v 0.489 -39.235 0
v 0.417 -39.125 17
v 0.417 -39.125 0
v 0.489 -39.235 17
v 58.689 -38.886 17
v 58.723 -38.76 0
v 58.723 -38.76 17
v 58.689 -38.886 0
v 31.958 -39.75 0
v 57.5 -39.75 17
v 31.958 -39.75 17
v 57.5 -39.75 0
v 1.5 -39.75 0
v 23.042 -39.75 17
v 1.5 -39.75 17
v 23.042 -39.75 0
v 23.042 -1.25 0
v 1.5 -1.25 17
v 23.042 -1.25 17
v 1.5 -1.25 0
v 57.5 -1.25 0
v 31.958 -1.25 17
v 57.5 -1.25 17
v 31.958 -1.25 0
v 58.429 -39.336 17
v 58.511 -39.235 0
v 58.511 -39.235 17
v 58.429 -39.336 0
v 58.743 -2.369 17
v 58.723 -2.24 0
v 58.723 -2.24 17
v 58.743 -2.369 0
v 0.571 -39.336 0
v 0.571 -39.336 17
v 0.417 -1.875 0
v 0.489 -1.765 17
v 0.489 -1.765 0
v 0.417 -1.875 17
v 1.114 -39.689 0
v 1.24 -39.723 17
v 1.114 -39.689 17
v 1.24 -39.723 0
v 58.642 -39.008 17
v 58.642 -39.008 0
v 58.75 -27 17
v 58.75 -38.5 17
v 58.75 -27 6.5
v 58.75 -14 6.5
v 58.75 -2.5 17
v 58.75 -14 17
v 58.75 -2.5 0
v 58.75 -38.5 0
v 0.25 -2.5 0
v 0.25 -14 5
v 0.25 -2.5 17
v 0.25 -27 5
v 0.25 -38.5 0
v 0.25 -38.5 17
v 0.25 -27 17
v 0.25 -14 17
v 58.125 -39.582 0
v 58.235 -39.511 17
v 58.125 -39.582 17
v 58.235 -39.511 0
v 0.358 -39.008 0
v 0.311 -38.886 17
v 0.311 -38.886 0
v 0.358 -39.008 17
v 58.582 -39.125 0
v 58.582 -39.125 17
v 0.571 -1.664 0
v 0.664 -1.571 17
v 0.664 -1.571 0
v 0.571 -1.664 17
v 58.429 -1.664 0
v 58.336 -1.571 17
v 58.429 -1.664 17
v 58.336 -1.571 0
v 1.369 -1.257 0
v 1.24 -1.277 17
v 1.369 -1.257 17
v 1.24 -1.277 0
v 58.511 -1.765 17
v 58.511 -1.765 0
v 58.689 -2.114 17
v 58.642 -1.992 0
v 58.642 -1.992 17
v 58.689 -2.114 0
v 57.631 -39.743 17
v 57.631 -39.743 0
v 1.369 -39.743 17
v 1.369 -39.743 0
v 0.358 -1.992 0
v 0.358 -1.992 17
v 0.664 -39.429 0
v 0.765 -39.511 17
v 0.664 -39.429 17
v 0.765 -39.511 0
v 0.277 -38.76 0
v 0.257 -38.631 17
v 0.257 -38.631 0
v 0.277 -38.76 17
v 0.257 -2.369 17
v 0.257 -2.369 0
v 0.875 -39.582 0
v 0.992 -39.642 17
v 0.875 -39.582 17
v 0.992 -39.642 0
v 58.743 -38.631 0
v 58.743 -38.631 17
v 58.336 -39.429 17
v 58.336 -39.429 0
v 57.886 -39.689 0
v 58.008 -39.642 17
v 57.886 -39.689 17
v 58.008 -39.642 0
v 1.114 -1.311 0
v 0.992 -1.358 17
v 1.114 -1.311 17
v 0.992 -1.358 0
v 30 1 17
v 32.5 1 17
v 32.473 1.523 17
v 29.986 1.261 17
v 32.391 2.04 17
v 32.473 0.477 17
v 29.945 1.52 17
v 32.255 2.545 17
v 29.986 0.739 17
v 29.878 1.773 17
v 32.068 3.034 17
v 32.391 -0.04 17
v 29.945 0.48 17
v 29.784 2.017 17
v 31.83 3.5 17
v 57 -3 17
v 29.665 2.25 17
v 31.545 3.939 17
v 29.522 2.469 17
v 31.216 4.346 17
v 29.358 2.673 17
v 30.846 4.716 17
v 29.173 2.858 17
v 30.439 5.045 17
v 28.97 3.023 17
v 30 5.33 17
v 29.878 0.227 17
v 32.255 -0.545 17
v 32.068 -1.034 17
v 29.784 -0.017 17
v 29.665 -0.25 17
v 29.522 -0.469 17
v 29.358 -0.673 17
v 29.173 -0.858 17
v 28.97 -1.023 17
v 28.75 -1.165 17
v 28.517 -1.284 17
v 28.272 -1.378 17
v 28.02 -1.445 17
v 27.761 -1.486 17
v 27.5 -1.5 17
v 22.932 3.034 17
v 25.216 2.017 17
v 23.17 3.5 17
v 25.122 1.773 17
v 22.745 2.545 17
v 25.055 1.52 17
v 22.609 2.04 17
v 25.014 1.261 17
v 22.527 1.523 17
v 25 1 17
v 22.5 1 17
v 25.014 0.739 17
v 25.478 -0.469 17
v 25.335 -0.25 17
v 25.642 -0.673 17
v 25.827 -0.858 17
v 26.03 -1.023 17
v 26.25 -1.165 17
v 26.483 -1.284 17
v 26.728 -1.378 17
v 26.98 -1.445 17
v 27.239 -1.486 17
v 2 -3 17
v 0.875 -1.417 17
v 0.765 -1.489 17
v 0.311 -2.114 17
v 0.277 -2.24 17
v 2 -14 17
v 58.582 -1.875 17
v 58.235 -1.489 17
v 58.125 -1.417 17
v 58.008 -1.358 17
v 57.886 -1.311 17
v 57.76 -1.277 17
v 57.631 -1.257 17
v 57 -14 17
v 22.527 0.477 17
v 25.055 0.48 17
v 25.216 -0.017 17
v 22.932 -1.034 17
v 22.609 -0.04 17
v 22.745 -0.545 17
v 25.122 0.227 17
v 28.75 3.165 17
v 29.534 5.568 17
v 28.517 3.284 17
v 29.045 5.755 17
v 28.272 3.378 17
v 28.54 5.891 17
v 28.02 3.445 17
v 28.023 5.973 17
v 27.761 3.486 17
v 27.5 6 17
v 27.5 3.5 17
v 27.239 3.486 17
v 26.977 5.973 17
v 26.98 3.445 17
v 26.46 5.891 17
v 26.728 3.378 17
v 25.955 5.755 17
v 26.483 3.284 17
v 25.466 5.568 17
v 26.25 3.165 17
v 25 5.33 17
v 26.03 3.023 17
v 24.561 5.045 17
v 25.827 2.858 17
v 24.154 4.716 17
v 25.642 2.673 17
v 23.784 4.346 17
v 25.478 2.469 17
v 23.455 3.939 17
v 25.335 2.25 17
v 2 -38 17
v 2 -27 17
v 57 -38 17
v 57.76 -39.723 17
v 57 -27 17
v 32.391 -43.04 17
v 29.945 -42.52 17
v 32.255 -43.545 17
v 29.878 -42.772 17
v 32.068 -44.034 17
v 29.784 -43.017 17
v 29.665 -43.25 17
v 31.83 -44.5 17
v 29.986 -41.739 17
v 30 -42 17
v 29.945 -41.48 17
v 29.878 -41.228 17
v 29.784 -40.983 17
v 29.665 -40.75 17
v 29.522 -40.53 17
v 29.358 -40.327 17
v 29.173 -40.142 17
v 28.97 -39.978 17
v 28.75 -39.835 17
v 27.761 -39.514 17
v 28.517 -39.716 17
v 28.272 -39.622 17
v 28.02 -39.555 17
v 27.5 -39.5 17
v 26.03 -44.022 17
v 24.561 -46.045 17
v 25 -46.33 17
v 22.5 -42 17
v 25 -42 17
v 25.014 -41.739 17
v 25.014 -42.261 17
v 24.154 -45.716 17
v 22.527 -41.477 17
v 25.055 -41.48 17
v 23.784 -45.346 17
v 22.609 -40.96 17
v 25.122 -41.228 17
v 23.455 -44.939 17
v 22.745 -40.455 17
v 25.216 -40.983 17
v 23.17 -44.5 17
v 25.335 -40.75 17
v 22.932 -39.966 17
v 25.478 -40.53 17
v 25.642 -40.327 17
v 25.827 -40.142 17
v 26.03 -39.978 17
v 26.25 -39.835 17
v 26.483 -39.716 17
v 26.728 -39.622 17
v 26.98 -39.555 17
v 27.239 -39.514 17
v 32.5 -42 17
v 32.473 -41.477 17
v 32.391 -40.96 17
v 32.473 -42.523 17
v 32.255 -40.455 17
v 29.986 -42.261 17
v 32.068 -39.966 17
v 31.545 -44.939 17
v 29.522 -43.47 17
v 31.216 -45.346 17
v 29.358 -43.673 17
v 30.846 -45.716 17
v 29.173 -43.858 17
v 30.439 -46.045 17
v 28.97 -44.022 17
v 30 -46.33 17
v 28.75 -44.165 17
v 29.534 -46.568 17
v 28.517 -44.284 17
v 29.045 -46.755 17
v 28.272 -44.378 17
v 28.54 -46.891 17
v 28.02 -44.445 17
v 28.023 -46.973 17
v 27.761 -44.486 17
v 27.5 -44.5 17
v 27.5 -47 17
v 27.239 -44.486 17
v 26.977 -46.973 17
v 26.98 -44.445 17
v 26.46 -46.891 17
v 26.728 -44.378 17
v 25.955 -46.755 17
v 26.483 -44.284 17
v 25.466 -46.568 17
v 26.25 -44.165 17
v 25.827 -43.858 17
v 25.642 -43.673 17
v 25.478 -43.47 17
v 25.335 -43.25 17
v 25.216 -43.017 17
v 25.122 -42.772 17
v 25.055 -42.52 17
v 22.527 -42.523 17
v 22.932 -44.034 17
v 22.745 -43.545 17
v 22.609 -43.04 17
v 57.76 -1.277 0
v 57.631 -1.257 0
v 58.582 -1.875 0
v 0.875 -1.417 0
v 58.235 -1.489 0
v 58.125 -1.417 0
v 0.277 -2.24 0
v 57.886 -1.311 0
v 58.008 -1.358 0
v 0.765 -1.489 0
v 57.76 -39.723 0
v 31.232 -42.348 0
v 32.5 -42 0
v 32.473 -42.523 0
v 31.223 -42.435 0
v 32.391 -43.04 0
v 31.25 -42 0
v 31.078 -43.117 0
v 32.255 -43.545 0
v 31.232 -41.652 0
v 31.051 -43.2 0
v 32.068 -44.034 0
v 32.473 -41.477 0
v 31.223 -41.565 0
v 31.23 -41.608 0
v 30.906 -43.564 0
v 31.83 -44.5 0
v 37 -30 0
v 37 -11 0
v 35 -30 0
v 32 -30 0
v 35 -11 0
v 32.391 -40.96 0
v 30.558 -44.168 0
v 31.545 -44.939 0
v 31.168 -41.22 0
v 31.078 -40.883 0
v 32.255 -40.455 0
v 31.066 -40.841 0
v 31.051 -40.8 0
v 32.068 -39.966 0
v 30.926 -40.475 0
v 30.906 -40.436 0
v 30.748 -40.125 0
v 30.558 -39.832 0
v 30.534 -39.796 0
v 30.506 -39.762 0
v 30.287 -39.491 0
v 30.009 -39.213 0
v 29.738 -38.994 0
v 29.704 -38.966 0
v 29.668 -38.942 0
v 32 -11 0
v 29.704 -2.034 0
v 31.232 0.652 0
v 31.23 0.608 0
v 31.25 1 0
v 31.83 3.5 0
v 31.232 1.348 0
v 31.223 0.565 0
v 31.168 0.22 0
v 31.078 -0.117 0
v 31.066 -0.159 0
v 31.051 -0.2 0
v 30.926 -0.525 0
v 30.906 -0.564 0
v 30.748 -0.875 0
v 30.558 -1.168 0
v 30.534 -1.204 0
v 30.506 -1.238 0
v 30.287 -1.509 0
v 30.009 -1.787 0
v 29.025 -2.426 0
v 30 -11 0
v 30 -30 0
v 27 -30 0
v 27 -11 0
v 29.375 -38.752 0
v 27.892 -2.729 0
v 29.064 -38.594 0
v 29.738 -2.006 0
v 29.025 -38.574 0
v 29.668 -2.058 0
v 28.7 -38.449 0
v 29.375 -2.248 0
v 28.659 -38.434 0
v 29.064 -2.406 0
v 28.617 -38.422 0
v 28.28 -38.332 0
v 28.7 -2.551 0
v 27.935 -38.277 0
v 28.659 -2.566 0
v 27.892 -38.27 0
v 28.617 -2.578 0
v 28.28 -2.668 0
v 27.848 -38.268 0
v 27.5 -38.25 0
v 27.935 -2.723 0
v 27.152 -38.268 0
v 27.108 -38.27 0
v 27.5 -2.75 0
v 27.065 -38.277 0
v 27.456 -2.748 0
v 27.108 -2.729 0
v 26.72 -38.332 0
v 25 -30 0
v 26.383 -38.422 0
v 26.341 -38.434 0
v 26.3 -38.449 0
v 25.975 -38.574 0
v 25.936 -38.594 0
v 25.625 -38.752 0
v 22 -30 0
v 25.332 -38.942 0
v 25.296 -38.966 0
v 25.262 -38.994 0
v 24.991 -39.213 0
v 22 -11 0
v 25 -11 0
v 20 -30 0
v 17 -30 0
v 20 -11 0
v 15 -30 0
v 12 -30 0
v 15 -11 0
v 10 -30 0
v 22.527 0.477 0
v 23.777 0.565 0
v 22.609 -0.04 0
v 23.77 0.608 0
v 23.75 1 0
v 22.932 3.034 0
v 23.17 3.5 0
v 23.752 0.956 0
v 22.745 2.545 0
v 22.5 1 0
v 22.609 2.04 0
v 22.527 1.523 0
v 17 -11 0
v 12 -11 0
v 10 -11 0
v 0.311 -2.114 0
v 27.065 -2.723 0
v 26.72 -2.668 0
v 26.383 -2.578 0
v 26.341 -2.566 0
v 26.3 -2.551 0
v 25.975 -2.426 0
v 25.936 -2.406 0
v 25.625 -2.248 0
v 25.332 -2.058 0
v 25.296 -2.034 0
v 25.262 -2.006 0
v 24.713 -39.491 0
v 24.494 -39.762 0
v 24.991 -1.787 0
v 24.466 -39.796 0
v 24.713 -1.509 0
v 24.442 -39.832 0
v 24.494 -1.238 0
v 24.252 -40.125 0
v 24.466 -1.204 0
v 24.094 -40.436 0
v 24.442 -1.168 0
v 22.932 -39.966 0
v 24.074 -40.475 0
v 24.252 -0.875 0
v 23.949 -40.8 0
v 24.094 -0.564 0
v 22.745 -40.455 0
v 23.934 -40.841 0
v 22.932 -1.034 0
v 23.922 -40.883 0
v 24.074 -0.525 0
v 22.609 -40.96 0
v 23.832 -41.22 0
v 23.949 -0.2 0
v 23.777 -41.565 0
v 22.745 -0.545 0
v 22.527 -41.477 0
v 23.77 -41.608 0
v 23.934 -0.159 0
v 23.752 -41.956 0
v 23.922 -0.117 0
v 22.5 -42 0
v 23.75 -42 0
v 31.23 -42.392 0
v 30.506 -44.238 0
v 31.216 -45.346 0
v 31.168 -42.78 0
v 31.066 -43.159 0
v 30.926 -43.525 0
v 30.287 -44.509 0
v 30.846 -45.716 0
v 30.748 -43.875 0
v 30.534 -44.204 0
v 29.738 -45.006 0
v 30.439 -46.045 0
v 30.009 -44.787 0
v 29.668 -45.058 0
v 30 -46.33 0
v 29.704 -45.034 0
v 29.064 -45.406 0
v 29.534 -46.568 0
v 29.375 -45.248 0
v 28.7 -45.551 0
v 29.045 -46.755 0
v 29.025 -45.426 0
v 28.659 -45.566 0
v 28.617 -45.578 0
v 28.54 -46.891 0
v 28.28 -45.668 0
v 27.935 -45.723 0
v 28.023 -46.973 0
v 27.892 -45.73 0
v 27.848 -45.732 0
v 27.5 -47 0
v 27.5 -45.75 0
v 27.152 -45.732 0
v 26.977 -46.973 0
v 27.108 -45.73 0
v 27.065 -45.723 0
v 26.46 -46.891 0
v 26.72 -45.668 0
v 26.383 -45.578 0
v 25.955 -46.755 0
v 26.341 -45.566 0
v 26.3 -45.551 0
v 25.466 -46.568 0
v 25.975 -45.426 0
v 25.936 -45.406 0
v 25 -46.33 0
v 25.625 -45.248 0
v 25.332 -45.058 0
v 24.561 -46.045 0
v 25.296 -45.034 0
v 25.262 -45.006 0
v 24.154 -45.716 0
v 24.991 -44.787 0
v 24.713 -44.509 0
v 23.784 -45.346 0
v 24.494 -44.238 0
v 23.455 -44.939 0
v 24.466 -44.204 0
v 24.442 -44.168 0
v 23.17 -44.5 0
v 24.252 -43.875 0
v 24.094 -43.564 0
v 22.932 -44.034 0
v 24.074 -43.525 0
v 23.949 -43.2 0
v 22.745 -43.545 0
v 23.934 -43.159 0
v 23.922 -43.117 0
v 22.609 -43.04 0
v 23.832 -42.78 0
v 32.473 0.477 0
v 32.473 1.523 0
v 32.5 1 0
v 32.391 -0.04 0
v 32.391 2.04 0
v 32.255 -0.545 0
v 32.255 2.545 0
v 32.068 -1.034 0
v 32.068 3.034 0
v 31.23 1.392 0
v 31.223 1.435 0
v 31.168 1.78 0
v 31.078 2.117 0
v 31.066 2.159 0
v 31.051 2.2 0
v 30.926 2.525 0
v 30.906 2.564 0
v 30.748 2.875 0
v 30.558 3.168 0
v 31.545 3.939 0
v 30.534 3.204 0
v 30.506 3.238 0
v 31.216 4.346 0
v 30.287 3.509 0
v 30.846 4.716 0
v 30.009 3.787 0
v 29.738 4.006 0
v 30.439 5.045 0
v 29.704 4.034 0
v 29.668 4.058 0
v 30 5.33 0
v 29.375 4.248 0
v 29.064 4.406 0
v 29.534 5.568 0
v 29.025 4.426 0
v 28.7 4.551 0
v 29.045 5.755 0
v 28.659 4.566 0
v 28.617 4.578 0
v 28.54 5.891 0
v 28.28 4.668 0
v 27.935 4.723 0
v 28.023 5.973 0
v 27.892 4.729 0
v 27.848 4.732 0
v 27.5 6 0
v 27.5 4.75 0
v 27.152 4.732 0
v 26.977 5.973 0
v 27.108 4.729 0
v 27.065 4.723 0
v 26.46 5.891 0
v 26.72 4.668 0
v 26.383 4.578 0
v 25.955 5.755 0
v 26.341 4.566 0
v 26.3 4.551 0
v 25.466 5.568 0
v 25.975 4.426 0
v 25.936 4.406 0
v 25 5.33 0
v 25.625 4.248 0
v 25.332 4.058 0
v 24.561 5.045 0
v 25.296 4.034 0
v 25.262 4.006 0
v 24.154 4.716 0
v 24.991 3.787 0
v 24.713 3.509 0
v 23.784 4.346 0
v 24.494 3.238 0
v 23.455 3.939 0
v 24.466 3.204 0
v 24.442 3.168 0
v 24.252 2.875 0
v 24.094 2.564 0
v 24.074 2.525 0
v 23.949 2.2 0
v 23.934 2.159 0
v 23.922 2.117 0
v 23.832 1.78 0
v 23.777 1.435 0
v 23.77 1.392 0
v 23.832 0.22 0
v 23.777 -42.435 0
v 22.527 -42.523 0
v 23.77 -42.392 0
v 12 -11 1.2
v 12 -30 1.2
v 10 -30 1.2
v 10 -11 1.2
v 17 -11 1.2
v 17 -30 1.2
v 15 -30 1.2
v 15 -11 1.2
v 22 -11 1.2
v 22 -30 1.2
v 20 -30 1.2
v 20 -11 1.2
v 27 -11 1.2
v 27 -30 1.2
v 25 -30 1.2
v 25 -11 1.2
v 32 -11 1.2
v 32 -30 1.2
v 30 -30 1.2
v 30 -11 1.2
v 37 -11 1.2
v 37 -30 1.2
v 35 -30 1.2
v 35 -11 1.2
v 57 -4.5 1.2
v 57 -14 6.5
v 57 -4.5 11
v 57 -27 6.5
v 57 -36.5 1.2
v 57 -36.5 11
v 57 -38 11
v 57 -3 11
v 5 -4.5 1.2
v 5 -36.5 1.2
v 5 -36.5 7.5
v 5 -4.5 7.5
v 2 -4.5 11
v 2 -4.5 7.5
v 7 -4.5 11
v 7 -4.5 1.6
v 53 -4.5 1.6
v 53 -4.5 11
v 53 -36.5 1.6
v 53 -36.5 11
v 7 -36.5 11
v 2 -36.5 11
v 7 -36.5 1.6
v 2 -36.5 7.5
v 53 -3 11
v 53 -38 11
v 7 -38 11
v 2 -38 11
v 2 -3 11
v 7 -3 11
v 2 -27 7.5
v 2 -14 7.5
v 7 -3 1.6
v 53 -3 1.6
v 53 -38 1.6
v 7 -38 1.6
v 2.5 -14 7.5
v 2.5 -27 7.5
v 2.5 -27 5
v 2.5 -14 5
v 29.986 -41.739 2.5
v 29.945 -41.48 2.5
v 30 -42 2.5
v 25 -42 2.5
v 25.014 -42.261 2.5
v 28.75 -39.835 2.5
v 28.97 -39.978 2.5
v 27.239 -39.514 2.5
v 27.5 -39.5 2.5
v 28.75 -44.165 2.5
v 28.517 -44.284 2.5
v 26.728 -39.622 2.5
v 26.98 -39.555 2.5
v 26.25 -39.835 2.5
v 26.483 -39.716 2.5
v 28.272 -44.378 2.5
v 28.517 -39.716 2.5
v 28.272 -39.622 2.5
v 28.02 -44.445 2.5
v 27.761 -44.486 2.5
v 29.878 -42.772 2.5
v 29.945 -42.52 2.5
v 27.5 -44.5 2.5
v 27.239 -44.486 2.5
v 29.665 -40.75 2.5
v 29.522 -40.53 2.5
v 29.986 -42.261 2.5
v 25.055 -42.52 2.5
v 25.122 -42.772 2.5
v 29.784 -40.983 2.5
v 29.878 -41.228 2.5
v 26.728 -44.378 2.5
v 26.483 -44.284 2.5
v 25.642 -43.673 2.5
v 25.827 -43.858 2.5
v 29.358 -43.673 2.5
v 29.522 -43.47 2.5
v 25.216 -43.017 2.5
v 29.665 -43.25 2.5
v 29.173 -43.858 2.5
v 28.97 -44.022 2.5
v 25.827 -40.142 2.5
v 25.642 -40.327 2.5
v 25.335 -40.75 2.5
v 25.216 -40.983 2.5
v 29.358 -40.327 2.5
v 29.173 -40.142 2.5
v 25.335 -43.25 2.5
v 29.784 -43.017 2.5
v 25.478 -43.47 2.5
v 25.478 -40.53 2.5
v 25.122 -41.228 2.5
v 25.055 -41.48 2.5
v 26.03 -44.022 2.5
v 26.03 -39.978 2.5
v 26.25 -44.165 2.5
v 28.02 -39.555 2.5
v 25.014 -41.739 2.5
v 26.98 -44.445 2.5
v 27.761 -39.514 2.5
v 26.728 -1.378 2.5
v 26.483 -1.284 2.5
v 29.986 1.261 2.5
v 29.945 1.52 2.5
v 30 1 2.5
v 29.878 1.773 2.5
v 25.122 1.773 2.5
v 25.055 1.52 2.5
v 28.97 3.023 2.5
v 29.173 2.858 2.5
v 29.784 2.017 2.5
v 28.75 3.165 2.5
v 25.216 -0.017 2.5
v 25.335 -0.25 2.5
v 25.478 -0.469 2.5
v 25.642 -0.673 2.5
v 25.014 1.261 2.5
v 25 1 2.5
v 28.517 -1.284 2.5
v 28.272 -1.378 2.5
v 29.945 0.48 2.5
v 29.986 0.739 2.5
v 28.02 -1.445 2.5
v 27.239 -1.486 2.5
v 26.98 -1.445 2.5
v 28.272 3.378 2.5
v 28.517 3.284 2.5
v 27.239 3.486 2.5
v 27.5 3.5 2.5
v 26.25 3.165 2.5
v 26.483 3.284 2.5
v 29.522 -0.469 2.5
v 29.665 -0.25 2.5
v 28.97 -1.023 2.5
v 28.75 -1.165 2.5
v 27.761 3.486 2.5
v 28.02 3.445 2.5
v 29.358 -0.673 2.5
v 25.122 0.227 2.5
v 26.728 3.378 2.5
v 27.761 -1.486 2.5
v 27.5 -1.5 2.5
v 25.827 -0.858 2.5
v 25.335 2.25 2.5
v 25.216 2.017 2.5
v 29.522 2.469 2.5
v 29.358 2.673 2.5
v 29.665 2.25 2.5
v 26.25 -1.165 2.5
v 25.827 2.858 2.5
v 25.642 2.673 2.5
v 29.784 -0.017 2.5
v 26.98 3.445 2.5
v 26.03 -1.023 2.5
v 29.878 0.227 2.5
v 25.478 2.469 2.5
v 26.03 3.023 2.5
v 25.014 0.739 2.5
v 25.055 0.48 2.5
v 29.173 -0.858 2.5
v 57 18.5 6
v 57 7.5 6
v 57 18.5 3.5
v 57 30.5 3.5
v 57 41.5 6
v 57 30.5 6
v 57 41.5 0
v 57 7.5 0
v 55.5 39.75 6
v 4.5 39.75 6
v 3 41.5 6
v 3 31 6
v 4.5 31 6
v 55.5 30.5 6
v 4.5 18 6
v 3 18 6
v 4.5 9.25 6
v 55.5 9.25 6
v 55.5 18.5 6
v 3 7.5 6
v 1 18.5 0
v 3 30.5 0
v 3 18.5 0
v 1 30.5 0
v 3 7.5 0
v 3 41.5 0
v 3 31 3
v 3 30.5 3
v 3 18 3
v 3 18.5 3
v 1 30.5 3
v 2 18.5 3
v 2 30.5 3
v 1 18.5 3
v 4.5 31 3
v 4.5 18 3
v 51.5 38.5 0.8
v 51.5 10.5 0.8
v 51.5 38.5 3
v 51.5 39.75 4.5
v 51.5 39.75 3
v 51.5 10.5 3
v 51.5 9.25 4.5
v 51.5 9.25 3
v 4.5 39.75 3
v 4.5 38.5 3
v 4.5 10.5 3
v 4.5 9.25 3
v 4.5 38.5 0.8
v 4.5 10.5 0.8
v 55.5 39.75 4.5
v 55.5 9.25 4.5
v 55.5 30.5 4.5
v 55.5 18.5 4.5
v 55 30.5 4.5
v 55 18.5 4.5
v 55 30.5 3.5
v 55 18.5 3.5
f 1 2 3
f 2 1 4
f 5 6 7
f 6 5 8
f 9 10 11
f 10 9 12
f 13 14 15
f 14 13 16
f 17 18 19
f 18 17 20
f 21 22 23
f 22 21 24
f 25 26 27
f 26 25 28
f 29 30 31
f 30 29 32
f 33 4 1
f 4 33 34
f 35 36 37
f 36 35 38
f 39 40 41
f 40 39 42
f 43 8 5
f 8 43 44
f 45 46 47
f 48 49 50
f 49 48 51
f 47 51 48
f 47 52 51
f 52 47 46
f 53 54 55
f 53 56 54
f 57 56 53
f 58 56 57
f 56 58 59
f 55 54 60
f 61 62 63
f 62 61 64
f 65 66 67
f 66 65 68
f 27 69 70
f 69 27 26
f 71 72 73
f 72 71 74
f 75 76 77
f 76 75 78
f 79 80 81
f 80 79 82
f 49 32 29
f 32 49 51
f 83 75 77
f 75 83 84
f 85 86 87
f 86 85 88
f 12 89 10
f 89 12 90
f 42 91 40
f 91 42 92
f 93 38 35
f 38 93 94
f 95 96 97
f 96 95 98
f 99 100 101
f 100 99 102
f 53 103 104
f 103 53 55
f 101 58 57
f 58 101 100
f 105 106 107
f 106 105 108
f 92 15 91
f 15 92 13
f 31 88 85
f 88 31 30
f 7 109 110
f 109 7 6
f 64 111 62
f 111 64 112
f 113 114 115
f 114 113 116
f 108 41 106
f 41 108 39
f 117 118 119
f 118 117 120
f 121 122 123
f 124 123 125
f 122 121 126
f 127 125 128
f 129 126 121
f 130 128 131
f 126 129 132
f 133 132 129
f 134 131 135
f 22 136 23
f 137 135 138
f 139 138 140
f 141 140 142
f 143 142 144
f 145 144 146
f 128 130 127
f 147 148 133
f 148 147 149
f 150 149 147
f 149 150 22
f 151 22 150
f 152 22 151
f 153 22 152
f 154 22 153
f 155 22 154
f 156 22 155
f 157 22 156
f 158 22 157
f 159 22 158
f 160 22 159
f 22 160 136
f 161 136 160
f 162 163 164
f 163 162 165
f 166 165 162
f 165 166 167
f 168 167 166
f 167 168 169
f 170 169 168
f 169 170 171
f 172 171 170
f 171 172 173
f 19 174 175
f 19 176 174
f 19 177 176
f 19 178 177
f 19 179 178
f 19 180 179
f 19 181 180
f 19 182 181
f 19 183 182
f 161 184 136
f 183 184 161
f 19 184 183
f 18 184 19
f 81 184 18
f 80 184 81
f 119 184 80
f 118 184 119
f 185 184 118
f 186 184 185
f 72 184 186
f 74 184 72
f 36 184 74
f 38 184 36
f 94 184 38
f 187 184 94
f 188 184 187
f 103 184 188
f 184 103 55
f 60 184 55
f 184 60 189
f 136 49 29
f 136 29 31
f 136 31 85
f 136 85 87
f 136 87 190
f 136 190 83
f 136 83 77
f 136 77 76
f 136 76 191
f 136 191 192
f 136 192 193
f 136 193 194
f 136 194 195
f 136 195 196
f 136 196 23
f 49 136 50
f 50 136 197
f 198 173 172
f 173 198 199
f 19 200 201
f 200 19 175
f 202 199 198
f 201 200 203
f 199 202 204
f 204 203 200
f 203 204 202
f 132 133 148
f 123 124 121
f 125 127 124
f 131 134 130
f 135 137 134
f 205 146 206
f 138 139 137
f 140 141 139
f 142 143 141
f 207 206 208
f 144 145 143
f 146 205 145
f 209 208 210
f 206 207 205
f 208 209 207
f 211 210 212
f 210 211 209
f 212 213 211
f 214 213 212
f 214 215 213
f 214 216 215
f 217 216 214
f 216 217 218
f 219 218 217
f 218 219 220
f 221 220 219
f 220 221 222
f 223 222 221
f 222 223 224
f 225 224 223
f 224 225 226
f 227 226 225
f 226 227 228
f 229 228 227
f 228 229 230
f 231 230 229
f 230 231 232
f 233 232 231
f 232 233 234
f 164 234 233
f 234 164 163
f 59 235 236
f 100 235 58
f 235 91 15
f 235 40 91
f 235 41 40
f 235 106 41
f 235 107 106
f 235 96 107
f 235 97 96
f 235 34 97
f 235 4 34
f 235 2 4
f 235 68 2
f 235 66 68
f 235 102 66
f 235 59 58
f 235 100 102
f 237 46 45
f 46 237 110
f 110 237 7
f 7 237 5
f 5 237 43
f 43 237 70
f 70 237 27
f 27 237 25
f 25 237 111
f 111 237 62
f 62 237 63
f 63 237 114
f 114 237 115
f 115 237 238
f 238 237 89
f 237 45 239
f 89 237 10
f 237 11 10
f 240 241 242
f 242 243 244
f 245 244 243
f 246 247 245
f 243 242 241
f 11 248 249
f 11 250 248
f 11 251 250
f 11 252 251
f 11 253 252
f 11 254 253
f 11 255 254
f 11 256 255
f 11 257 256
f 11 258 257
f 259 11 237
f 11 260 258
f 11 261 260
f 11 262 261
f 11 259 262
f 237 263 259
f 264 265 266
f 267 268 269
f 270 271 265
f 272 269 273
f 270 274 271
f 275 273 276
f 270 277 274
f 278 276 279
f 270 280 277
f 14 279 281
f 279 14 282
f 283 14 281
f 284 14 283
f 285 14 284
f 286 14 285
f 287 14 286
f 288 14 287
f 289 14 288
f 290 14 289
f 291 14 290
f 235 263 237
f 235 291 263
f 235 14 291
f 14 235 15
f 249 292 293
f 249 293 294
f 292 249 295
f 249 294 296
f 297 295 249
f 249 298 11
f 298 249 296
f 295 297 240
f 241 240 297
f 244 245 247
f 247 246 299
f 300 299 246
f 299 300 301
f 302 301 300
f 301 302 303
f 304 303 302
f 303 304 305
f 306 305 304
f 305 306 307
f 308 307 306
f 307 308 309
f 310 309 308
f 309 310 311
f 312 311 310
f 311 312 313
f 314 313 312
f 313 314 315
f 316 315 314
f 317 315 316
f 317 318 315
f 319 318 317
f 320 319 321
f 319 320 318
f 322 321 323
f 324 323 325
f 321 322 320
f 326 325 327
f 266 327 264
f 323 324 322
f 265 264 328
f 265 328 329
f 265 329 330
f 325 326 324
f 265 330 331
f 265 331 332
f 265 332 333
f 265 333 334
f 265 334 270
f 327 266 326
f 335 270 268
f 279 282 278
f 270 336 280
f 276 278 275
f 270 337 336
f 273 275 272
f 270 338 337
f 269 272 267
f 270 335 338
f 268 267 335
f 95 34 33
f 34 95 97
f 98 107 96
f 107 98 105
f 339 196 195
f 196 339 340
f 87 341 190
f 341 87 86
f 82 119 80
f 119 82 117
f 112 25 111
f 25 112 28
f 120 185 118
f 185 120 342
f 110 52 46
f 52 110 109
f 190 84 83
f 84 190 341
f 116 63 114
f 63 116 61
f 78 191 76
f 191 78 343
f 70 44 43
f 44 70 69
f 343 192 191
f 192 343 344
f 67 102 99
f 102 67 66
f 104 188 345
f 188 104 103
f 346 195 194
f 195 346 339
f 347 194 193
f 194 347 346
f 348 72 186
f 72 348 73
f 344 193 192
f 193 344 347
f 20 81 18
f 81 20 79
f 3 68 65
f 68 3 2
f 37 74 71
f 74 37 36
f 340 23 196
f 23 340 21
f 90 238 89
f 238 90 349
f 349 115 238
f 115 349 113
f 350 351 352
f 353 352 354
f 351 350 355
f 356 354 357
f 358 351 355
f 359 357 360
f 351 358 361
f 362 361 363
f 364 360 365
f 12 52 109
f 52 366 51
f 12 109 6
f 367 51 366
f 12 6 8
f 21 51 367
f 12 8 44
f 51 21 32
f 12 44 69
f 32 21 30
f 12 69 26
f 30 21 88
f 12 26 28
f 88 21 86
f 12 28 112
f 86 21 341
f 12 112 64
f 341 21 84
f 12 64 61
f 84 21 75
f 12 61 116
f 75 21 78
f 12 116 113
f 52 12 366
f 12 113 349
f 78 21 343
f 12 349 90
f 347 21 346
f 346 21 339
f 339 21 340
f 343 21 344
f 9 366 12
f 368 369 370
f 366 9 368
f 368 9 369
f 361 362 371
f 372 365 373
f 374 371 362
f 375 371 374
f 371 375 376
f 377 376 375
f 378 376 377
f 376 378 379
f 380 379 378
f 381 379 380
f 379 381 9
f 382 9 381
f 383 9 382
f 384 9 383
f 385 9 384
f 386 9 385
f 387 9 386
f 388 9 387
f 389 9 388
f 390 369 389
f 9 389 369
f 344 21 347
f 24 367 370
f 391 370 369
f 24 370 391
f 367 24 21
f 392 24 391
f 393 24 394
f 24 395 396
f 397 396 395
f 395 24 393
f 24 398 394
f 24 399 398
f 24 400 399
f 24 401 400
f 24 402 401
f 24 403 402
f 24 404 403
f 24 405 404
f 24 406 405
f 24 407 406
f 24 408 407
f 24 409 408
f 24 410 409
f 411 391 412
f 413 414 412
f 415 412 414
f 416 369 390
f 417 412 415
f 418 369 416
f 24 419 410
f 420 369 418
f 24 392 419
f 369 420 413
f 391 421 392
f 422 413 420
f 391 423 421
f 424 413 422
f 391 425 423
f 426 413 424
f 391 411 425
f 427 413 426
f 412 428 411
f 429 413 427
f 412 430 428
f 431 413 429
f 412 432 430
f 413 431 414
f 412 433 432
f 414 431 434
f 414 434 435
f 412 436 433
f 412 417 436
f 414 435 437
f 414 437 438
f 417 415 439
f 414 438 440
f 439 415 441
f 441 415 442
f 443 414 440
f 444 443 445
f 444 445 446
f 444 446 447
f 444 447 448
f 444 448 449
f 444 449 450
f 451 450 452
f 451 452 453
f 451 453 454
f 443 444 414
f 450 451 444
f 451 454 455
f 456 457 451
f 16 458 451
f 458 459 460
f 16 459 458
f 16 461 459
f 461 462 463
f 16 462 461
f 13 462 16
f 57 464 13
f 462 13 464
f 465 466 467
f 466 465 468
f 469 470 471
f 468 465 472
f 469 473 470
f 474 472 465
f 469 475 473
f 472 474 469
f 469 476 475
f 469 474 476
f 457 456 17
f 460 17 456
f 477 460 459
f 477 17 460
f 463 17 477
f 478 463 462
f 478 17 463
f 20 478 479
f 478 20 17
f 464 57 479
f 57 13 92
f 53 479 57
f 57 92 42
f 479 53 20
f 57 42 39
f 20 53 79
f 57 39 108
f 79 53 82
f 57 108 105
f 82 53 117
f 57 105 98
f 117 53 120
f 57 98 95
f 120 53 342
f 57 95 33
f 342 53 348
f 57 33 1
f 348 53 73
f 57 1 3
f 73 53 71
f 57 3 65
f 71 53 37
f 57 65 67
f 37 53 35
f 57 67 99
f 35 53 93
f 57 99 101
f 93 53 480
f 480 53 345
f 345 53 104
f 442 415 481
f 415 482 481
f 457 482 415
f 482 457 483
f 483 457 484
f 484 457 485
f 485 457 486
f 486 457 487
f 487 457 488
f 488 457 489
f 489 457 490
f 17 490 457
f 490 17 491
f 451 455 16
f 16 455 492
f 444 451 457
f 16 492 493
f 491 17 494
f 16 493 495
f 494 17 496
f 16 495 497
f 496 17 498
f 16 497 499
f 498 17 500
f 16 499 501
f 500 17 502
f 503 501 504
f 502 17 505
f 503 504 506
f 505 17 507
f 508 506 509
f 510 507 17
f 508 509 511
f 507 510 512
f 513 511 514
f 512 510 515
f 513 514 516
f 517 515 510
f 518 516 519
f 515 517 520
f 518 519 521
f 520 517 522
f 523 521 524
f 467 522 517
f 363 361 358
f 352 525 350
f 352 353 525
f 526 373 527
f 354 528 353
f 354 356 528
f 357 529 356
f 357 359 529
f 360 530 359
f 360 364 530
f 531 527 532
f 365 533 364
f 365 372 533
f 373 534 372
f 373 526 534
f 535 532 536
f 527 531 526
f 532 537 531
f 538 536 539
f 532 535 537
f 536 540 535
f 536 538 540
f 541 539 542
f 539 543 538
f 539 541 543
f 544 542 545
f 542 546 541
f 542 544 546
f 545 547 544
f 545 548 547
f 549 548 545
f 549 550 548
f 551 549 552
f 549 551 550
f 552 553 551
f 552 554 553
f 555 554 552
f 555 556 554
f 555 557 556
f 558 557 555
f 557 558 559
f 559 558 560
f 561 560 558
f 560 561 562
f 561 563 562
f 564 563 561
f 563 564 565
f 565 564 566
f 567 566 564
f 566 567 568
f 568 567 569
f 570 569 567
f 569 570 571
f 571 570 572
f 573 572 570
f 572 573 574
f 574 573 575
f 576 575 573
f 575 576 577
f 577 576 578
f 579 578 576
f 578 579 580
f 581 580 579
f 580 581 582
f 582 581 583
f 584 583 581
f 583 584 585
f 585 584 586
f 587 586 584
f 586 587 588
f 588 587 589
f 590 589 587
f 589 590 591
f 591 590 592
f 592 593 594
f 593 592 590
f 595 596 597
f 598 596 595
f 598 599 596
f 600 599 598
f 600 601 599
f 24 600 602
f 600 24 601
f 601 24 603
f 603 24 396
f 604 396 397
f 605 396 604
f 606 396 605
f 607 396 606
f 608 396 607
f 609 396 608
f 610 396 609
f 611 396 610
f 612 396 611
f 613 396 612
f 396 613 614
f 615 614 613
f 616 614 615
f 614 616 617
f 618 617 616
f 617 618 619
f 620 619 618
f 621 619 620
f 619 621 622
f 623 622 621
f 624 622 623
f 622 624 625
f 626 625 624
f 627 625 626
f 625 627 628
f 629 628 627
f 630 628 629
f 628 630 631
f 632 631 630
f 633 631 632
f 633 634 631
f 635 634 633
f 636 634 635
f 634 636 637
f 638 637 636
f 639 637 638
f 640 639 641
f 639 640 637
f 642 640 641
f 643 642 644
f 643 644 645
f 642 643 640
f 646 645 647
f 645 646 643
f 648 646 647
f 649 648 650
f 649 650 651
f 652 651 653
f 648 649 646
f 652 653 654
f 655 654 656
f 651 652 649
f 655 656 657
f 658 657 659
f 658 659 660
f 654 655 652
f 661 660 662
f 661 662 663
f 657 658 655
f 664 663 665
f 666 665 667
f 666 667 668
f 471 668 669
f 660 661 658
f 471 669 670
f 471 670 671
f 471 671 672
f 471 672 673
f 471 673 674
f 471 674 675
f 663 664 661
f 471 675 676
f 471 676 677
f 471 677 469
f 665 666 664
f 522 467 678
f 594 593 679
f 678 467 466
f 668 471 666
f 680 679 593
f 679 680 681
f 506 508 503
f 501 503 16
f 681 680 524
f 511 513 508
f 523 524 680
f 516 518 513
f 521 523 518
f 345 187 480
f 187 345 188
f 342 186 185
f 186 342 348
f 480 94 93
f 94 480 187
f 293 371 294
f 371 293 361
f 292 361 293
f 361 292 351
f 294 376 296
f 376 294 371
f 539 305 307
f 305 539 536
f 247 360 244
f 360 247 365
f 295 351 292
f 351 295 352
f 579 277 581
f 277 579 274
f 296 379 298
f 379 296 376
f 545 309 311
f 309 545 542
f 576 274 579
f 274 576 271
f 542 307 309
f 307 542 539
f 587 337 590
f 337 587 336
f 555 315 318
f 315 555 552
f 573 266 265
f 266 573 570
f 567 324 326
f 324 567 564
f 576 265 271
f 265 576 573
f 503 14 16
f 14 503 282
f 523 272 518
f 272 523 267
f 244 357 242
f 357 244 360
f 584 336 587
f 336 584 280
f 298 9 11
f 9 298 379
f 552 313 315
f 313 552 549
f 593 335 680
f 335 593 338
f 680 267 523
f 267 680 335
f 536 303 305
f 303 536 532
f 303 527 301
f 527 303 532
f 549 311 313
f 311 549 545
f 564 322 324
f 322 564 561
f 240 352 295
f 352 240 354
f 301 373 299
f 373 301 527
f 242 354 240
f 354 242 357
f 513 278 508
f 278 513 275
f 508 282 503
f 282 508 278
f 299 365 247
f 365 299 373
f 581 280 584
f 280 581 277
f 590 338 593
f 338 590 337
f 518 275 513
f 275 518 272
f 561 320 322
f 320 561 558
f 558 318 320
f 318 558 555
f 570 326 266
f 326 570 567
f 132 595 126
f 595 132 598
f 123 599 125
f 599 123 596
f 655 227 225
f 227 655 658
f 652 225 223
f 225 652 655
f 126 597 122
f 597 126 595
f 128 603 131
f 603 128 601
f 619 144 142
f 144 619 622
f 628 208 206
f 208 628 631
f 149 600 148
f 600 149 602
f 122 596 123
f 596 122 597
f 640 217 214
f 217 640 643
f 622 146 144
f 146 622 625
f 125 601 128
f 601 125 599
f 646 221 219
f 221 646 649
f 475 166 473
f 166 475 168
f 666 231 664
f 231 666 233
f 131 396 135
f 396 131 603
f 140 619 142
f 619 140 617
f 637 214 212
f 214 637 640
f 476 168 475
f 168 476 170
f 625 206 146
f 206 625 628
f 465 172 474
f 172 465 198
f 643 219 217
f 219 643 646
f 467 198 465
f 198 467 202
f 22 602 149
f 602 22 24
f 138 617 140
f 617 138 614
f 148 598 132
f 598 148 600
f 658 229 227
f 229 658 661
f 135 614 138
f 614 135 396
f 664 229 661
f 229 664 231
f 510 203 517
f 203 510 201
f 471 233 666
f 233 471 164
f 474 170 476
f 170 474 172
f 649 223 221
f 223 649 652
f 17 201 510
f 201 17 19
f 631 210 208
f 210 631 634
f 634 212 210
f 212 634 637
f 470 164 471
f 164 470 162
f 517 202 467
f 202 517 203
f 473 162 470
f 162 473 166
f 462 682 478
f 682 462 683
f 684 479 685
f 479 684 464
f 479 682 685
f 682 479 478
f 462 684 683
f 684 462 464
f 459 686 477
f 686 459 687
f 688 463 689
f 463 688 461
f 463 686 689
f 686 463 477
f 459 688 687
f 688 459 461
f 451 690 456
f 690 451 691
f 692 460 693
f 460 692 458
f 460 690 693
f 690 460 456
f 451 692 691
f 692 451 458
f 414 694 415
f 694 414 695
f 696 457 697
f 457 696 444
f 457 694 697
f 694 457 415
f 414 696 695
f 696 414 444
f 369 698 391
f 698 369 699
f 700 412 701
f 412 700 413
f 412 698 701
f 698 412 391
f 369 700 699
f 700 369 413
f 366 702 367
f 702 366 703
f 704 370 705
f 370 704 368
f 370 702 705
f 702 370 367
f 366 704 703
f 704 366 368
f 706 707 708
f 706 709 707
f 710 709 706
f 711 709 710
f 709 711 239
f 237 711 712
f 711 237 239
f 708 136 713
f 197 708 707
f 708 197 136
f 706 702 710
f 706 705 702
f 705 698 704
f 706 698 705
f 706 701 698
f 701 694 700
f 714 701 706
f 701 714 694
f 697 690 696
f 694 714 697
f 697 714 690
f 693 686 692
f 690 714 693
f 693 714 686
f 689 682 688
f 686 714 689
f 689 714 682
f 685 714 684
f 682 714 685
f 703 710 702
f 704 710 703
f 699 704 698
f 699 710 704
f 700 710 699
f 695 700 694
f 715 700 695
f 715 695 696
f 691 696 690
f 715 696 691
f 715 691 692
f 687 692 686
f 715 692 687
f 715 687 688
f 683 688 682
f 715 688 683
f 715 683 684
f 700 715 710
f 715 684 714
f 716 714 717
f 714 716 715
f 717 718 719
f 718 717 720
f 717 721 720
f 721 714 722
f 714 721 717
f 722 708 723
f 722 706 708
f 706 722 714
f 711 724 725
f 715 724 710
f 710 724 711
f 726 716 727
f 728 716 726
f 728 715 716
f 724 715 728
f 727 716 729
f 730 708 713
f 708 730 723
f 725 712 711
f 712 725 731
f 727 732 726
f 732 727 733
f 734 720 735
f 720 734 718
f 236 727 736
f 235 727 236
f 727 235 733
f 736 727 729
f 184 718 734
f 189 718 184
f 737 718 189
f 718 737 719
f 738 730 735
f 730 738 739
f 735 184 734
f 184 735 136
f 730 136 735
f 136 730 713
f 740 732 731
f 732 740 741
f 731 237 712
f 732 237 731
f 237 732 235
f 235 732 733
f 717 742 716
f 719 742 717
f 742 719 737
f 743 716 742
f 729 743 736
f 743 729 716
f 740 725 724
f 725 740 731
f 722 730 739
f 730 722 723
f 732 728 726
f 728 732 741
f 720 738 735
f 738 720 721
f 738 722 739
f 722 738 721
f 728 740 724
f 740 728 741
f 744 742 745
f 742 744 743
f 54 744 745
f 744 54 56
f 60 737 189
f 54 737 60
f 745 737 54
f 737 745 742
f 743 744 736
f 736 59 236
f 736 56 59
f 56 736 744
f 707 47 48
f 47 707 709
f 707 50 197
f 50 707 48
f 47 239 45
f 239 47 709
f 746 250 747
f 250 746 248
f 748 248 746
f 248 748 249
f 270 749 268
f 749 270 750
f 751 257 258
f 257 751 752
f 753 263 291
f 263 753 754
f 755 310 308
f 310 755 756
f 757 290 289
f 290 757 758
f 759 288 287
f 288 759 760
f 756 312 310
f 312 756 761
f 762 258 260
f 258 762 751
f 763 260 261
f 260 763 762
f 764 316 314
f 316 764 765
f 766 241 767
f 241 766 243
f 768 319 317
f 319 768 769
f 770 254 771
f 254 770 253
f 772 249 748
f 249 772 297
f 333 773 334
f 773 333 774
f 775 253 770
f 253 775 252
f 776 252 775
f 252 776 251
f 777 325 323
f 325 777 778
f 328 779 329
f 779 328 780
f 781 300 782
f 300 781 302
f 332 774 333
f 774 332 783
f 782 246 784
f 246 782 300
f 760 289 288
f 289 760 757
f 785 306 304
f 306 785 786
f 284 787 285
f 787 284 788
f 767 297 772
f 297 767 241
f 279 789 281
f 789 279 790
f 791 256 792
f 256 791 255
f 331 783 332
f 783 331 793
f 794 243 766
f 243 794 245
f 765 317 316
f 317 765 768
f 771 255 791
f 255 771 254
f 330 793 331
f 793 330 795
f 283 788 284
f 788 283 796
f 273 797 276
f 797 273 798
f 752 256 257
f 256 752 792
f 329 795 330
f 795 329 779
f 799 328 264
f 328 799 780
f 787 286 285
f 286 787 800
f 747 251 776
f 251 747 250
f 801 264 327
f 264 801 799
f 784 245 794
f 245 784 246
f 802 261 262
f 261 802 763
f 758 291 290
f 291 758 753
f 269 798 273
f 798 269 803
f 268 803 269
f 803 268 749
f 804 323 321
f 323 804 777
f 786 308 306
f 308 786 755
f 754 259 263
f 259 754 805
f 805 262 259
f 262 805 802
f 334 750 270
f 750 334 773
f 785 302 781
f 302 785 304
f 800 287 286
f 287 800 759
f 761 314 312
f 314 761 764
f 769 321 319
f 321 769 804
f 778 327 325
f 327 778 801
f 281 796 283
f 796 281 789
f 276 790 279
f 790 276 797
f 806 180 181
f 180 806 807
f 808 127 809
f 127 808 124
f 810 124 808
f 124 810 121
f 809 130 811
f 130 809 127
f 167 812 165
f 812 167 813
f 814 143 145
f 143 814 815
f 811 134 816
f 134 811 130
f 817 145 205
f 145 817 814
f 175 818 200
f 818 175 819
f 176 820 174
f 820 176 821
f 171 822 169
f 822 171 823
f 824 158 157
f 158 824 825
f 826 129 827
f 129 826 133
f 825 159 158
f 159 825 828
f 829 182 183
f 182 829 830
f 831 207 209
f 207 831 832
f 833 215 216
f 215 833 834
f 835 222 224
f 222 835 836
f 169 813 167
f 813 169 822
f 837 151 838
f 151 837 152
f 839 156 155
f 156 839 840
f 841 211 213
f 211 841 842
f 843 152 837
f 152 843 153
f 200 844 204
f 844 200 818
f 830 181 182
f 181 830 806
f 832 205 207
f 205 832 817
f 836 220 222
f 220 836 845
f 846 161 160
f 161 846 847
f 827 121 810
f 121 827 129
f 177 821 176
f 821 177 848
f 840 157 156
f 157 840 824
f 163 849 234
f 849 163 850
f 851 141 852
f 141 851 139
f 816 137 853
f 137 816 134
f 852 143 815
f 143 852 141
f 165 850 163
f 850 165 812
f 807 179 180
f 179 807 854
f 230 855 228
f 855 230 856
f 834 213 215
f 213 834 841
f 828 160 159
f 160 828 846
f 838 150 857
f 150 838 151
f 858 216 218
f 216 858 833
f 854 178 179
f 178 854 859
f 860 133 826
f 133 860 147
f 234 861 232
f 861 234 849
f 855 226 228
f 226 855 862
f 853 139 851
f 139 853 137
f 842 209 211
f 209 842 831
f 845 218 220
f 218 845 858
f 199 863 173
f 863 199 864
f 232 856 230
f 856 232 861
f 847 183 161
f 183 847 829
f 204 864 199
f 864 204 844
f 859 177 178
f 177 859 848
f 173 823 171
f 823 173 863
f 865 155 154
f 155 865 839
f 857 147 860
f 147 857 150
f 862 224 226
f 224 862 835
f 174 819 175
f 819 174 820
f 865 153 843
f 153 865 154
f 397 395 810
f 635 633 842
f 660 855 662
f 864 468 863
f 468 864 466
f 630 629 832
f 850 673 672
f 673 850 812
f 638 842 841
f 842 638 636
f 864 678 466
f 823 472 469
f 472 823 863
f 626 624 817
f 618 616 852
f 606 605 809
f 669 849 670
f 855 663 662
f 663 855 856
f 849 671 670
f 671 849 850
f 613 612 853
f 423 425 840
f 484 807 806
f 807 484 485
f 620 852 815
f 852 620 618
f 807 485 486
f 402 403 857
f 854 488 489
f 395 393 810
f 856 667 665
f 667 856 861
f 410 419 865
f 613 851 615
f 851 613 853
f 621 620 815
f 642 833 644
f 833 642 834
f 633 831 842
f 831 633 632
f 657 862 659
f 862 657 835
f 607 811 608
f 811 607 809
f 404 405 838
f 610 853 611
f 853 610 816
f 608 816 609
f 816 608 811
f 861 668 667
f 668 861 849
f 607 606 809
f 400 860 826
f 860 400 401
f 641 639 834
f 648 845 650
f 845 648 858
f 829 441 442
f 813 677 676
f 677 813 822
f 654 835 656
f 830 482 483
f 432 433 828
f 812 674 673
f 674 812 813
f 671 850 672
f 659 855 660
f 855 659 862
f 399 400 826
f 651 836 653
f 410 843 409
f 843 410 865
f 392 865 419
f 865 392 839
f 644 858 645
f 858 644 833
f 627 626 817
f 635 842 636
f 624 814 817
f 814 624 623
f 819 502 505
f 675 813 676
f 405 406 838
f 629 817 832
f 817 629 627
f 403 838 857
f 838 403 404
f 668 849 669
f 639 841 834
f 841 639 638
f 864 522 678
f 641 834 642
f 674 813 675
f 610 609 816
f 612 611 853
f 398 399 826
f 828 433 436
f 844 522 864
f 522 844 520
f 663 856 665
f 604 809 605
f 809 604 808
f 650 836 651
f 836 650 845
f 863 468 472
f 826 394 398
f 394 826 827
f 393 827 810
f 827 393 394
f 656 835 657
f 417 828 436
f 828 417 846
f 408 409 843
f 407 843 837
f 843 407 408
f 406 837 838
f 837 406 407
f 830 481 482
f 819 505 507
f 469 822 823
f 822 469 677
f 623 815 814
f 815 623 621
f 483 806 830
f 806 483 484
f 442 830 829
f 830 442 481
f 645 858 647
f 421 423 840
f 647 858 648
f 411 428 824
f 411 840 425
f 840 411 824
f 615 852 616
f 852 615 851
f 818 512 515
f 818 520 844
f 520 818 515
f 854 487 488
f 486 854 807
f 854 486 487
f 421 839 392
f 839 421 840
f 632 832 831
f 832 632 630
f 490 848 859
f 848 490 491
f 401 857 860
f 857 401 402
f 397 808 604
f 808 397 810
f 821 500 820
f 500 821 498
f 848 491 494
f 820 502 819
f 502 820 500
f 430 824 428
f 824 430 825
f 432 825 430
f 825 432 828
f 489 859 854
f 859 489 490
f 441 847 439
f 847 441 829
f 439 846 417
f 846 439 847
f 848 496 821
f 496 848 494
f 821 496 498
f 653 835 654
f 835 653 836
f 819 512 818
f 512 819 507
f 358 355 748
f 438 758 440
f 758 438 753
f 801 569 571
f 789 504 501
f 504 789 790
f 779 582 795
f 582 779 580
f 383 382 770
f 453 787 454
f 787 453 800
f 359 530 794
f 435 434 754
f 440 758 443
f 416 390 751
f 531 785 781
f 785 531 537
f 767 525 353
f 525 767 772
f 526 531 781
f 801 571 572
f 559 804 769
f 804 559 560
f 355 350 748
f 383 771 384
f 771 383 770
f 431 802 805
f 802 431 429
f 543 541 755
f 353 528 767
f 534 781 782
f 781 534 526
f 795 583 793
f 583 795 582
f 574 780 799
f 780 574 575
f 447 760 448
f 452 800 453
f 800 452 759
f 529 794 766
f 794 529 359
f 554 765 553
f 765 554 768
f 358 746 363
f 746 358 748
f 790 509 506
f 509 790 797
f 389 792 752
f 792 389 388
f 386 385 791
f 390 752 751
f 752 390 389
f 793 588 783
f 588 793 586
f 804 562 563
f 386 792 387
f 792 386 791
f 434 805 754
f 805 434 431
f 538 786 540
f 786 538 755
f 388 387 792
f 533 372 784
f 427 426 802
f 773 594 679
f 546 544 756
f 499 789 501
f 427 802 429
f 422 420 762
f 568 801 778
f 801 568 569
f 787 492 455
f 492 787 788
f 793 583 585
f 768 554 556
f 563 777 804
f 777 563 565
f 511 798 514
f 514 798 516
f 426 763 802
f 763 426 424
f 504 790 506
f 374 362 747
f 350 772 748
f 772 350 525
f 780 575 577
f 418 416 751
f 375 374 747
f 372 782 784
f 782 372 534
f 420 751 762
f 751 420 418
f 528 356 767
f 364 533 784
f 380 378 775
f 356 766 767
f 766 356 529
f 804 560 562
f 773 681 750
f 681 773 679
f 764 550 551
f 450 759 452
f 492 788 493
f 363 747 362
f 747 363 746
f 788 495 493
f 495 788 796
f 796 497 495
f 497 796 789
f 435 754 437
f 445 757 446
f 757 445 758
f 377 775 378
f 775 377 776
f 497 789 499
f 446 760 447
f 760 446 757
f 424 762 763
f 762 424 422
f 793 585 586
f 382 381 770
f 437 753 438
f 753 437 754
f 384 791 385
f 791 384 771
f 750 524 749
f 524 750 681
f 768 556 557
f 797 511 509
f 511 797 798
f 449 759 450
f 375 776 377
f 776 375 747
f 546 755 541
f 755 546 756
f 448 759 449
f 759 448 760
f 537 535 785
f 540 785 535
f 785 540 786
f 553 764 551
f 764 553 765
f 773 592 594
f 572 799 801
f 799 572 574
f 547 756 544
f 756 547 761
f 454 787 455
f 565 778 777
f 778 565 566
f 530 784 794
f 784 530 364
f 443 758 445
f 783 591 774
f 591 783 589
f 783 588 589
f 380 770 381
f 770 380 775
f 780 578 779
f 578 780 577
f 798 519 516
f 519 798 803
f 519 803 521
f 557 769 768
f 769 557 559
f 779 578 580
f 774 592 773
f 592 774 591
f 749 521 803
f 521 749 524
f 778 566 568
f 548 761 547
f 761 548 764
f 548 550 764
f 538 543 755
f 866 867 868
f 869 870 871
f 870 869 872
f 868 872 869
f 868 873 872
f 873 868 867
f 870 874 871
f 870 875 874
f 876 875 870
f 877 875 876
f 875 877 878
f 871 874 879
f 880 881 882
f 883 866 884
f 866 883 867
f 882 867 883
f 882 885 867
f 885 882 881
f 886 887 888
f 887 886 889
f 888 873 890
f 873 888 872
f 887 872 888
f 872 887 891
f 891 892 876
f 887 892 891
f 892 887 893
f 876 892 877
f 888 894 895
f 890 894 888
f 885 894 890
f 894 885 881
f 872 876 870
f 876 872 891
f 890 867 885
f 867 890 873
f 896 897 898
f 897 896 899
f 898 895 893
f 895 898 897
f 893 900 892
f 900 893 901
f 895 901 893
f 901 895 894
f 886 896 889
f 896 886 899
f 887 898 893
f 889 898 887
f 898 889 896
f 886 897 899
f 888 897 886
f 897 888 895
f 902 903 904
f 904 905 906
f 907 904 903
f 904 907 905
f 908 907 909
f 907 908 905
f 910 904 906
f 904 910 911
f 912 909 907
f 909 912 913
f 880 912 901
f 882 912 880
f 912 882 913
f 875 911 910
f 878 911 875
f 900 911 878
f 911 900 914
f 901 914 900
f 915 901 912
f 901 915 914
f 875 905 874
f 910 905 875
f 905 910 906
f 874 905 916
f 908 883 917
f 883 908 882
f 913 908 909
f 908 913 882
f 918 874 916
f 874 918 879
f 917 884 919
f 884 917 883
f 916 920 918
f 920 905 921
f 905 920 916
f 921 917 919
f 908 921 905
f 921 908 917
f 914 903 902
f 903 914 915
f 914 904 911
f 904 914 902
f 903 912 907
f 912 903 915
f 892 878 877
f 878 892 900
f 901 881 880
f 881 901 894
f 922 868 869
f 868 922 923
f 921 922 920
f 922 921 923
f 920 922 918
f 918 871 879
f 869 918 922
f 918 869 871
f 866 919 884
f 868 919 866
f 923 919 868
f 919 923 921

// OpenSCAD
/* Designed by A.J. v.d. Werken, Oct 2021    */
/* Case for WEMOS D1 ESP8266 incl shield     */  
/* Works with WATERLEZER (ESPHOME)           */

$fn=60;

module waterlezer_case_bottom()
{
    difference()
    {
        // solid
        union()
        {
            translate( [0.5,0.5,0]) cube( [54, 34, 6] ); 
            translate( [-1.5,11.5,0] ) cube( [3,12,3]);  
        }
        // holes
        translate( [2,2.25,3] ) cube( [47, 30.5, 12] );
        translate( [2,2.25,4.5] ) cube( [51, 30.5, 12] );
        translate( [2,3.5,0.8] ) cube( [47, 28, 12] );
        translate( [-0.5,11,3] ) cube( [3,13,8]);
        translate( [52.5,11.5,3.5] ) cube( [3,12,9]);   
    
        
    }
}

module waterlezer_case_top()
{
    difference()
    {
        // solid
        union()
        {
            hull()
            {
                translate([1.5,1.5,0]) cylinder( d=2.5, h=17 );
                translate([57.5,1.5,0]) cylinder( d=2.5, h=17 );            
                translate([57.5,37.5,0]) cylinder( d=2.5, h=17 );
                translate([1.5,37.5,0]) cylinder( d=2.5, h=17 );
            }
            translate([27.5,-2,0]) cylinder( d=10, h=17 );
            translate([27.5,41,0]) cylinder( d=10, h=17 );
           
        }
        // holes
        translate( [5,3.5,1.2] ) cube( [52, 32, 20] );
        translate( [2,2,11] ) cube( [55, 35, 20] );
        translate( [2,3.5,7.5] ) cube( [5.5, 32, 20] );
        
        translate( [7,2,7.5] ) cube( [46, 35, 20] );
        translate( [7,2,1.6] ) cube( [46, 35, 20] );
        
        translate( [-0.5,13,5] ) cube( [3,13,20]);
        translate( [56.5,13,6.5] ) cube( [3,13,20]);      
        translate([27.5,-2,-0.5]) cylinder( d=5, h=20 ); 
        translate([27.5,41,-0.5]) cylinder( d=5, h=20 ); 
        translate([27.5,41,-0.5]) cylinder( d1=8, d2=5, h=3 ); 
        translate([27.5,-2,-0.5]) cylinder( d1=8, d2=5, h=3 ); 
        
        for (i=[0:5], x=10 + i*5) 
        {
            translate( [x,10,-0.5] ) cube( [2,19,3]);            
        }

   }
}

translate( [0,-40,0] ) 
    waterlezer_case_top();
translate( [2.5,7,0] ) 
    waterlezer_case_bottom();
